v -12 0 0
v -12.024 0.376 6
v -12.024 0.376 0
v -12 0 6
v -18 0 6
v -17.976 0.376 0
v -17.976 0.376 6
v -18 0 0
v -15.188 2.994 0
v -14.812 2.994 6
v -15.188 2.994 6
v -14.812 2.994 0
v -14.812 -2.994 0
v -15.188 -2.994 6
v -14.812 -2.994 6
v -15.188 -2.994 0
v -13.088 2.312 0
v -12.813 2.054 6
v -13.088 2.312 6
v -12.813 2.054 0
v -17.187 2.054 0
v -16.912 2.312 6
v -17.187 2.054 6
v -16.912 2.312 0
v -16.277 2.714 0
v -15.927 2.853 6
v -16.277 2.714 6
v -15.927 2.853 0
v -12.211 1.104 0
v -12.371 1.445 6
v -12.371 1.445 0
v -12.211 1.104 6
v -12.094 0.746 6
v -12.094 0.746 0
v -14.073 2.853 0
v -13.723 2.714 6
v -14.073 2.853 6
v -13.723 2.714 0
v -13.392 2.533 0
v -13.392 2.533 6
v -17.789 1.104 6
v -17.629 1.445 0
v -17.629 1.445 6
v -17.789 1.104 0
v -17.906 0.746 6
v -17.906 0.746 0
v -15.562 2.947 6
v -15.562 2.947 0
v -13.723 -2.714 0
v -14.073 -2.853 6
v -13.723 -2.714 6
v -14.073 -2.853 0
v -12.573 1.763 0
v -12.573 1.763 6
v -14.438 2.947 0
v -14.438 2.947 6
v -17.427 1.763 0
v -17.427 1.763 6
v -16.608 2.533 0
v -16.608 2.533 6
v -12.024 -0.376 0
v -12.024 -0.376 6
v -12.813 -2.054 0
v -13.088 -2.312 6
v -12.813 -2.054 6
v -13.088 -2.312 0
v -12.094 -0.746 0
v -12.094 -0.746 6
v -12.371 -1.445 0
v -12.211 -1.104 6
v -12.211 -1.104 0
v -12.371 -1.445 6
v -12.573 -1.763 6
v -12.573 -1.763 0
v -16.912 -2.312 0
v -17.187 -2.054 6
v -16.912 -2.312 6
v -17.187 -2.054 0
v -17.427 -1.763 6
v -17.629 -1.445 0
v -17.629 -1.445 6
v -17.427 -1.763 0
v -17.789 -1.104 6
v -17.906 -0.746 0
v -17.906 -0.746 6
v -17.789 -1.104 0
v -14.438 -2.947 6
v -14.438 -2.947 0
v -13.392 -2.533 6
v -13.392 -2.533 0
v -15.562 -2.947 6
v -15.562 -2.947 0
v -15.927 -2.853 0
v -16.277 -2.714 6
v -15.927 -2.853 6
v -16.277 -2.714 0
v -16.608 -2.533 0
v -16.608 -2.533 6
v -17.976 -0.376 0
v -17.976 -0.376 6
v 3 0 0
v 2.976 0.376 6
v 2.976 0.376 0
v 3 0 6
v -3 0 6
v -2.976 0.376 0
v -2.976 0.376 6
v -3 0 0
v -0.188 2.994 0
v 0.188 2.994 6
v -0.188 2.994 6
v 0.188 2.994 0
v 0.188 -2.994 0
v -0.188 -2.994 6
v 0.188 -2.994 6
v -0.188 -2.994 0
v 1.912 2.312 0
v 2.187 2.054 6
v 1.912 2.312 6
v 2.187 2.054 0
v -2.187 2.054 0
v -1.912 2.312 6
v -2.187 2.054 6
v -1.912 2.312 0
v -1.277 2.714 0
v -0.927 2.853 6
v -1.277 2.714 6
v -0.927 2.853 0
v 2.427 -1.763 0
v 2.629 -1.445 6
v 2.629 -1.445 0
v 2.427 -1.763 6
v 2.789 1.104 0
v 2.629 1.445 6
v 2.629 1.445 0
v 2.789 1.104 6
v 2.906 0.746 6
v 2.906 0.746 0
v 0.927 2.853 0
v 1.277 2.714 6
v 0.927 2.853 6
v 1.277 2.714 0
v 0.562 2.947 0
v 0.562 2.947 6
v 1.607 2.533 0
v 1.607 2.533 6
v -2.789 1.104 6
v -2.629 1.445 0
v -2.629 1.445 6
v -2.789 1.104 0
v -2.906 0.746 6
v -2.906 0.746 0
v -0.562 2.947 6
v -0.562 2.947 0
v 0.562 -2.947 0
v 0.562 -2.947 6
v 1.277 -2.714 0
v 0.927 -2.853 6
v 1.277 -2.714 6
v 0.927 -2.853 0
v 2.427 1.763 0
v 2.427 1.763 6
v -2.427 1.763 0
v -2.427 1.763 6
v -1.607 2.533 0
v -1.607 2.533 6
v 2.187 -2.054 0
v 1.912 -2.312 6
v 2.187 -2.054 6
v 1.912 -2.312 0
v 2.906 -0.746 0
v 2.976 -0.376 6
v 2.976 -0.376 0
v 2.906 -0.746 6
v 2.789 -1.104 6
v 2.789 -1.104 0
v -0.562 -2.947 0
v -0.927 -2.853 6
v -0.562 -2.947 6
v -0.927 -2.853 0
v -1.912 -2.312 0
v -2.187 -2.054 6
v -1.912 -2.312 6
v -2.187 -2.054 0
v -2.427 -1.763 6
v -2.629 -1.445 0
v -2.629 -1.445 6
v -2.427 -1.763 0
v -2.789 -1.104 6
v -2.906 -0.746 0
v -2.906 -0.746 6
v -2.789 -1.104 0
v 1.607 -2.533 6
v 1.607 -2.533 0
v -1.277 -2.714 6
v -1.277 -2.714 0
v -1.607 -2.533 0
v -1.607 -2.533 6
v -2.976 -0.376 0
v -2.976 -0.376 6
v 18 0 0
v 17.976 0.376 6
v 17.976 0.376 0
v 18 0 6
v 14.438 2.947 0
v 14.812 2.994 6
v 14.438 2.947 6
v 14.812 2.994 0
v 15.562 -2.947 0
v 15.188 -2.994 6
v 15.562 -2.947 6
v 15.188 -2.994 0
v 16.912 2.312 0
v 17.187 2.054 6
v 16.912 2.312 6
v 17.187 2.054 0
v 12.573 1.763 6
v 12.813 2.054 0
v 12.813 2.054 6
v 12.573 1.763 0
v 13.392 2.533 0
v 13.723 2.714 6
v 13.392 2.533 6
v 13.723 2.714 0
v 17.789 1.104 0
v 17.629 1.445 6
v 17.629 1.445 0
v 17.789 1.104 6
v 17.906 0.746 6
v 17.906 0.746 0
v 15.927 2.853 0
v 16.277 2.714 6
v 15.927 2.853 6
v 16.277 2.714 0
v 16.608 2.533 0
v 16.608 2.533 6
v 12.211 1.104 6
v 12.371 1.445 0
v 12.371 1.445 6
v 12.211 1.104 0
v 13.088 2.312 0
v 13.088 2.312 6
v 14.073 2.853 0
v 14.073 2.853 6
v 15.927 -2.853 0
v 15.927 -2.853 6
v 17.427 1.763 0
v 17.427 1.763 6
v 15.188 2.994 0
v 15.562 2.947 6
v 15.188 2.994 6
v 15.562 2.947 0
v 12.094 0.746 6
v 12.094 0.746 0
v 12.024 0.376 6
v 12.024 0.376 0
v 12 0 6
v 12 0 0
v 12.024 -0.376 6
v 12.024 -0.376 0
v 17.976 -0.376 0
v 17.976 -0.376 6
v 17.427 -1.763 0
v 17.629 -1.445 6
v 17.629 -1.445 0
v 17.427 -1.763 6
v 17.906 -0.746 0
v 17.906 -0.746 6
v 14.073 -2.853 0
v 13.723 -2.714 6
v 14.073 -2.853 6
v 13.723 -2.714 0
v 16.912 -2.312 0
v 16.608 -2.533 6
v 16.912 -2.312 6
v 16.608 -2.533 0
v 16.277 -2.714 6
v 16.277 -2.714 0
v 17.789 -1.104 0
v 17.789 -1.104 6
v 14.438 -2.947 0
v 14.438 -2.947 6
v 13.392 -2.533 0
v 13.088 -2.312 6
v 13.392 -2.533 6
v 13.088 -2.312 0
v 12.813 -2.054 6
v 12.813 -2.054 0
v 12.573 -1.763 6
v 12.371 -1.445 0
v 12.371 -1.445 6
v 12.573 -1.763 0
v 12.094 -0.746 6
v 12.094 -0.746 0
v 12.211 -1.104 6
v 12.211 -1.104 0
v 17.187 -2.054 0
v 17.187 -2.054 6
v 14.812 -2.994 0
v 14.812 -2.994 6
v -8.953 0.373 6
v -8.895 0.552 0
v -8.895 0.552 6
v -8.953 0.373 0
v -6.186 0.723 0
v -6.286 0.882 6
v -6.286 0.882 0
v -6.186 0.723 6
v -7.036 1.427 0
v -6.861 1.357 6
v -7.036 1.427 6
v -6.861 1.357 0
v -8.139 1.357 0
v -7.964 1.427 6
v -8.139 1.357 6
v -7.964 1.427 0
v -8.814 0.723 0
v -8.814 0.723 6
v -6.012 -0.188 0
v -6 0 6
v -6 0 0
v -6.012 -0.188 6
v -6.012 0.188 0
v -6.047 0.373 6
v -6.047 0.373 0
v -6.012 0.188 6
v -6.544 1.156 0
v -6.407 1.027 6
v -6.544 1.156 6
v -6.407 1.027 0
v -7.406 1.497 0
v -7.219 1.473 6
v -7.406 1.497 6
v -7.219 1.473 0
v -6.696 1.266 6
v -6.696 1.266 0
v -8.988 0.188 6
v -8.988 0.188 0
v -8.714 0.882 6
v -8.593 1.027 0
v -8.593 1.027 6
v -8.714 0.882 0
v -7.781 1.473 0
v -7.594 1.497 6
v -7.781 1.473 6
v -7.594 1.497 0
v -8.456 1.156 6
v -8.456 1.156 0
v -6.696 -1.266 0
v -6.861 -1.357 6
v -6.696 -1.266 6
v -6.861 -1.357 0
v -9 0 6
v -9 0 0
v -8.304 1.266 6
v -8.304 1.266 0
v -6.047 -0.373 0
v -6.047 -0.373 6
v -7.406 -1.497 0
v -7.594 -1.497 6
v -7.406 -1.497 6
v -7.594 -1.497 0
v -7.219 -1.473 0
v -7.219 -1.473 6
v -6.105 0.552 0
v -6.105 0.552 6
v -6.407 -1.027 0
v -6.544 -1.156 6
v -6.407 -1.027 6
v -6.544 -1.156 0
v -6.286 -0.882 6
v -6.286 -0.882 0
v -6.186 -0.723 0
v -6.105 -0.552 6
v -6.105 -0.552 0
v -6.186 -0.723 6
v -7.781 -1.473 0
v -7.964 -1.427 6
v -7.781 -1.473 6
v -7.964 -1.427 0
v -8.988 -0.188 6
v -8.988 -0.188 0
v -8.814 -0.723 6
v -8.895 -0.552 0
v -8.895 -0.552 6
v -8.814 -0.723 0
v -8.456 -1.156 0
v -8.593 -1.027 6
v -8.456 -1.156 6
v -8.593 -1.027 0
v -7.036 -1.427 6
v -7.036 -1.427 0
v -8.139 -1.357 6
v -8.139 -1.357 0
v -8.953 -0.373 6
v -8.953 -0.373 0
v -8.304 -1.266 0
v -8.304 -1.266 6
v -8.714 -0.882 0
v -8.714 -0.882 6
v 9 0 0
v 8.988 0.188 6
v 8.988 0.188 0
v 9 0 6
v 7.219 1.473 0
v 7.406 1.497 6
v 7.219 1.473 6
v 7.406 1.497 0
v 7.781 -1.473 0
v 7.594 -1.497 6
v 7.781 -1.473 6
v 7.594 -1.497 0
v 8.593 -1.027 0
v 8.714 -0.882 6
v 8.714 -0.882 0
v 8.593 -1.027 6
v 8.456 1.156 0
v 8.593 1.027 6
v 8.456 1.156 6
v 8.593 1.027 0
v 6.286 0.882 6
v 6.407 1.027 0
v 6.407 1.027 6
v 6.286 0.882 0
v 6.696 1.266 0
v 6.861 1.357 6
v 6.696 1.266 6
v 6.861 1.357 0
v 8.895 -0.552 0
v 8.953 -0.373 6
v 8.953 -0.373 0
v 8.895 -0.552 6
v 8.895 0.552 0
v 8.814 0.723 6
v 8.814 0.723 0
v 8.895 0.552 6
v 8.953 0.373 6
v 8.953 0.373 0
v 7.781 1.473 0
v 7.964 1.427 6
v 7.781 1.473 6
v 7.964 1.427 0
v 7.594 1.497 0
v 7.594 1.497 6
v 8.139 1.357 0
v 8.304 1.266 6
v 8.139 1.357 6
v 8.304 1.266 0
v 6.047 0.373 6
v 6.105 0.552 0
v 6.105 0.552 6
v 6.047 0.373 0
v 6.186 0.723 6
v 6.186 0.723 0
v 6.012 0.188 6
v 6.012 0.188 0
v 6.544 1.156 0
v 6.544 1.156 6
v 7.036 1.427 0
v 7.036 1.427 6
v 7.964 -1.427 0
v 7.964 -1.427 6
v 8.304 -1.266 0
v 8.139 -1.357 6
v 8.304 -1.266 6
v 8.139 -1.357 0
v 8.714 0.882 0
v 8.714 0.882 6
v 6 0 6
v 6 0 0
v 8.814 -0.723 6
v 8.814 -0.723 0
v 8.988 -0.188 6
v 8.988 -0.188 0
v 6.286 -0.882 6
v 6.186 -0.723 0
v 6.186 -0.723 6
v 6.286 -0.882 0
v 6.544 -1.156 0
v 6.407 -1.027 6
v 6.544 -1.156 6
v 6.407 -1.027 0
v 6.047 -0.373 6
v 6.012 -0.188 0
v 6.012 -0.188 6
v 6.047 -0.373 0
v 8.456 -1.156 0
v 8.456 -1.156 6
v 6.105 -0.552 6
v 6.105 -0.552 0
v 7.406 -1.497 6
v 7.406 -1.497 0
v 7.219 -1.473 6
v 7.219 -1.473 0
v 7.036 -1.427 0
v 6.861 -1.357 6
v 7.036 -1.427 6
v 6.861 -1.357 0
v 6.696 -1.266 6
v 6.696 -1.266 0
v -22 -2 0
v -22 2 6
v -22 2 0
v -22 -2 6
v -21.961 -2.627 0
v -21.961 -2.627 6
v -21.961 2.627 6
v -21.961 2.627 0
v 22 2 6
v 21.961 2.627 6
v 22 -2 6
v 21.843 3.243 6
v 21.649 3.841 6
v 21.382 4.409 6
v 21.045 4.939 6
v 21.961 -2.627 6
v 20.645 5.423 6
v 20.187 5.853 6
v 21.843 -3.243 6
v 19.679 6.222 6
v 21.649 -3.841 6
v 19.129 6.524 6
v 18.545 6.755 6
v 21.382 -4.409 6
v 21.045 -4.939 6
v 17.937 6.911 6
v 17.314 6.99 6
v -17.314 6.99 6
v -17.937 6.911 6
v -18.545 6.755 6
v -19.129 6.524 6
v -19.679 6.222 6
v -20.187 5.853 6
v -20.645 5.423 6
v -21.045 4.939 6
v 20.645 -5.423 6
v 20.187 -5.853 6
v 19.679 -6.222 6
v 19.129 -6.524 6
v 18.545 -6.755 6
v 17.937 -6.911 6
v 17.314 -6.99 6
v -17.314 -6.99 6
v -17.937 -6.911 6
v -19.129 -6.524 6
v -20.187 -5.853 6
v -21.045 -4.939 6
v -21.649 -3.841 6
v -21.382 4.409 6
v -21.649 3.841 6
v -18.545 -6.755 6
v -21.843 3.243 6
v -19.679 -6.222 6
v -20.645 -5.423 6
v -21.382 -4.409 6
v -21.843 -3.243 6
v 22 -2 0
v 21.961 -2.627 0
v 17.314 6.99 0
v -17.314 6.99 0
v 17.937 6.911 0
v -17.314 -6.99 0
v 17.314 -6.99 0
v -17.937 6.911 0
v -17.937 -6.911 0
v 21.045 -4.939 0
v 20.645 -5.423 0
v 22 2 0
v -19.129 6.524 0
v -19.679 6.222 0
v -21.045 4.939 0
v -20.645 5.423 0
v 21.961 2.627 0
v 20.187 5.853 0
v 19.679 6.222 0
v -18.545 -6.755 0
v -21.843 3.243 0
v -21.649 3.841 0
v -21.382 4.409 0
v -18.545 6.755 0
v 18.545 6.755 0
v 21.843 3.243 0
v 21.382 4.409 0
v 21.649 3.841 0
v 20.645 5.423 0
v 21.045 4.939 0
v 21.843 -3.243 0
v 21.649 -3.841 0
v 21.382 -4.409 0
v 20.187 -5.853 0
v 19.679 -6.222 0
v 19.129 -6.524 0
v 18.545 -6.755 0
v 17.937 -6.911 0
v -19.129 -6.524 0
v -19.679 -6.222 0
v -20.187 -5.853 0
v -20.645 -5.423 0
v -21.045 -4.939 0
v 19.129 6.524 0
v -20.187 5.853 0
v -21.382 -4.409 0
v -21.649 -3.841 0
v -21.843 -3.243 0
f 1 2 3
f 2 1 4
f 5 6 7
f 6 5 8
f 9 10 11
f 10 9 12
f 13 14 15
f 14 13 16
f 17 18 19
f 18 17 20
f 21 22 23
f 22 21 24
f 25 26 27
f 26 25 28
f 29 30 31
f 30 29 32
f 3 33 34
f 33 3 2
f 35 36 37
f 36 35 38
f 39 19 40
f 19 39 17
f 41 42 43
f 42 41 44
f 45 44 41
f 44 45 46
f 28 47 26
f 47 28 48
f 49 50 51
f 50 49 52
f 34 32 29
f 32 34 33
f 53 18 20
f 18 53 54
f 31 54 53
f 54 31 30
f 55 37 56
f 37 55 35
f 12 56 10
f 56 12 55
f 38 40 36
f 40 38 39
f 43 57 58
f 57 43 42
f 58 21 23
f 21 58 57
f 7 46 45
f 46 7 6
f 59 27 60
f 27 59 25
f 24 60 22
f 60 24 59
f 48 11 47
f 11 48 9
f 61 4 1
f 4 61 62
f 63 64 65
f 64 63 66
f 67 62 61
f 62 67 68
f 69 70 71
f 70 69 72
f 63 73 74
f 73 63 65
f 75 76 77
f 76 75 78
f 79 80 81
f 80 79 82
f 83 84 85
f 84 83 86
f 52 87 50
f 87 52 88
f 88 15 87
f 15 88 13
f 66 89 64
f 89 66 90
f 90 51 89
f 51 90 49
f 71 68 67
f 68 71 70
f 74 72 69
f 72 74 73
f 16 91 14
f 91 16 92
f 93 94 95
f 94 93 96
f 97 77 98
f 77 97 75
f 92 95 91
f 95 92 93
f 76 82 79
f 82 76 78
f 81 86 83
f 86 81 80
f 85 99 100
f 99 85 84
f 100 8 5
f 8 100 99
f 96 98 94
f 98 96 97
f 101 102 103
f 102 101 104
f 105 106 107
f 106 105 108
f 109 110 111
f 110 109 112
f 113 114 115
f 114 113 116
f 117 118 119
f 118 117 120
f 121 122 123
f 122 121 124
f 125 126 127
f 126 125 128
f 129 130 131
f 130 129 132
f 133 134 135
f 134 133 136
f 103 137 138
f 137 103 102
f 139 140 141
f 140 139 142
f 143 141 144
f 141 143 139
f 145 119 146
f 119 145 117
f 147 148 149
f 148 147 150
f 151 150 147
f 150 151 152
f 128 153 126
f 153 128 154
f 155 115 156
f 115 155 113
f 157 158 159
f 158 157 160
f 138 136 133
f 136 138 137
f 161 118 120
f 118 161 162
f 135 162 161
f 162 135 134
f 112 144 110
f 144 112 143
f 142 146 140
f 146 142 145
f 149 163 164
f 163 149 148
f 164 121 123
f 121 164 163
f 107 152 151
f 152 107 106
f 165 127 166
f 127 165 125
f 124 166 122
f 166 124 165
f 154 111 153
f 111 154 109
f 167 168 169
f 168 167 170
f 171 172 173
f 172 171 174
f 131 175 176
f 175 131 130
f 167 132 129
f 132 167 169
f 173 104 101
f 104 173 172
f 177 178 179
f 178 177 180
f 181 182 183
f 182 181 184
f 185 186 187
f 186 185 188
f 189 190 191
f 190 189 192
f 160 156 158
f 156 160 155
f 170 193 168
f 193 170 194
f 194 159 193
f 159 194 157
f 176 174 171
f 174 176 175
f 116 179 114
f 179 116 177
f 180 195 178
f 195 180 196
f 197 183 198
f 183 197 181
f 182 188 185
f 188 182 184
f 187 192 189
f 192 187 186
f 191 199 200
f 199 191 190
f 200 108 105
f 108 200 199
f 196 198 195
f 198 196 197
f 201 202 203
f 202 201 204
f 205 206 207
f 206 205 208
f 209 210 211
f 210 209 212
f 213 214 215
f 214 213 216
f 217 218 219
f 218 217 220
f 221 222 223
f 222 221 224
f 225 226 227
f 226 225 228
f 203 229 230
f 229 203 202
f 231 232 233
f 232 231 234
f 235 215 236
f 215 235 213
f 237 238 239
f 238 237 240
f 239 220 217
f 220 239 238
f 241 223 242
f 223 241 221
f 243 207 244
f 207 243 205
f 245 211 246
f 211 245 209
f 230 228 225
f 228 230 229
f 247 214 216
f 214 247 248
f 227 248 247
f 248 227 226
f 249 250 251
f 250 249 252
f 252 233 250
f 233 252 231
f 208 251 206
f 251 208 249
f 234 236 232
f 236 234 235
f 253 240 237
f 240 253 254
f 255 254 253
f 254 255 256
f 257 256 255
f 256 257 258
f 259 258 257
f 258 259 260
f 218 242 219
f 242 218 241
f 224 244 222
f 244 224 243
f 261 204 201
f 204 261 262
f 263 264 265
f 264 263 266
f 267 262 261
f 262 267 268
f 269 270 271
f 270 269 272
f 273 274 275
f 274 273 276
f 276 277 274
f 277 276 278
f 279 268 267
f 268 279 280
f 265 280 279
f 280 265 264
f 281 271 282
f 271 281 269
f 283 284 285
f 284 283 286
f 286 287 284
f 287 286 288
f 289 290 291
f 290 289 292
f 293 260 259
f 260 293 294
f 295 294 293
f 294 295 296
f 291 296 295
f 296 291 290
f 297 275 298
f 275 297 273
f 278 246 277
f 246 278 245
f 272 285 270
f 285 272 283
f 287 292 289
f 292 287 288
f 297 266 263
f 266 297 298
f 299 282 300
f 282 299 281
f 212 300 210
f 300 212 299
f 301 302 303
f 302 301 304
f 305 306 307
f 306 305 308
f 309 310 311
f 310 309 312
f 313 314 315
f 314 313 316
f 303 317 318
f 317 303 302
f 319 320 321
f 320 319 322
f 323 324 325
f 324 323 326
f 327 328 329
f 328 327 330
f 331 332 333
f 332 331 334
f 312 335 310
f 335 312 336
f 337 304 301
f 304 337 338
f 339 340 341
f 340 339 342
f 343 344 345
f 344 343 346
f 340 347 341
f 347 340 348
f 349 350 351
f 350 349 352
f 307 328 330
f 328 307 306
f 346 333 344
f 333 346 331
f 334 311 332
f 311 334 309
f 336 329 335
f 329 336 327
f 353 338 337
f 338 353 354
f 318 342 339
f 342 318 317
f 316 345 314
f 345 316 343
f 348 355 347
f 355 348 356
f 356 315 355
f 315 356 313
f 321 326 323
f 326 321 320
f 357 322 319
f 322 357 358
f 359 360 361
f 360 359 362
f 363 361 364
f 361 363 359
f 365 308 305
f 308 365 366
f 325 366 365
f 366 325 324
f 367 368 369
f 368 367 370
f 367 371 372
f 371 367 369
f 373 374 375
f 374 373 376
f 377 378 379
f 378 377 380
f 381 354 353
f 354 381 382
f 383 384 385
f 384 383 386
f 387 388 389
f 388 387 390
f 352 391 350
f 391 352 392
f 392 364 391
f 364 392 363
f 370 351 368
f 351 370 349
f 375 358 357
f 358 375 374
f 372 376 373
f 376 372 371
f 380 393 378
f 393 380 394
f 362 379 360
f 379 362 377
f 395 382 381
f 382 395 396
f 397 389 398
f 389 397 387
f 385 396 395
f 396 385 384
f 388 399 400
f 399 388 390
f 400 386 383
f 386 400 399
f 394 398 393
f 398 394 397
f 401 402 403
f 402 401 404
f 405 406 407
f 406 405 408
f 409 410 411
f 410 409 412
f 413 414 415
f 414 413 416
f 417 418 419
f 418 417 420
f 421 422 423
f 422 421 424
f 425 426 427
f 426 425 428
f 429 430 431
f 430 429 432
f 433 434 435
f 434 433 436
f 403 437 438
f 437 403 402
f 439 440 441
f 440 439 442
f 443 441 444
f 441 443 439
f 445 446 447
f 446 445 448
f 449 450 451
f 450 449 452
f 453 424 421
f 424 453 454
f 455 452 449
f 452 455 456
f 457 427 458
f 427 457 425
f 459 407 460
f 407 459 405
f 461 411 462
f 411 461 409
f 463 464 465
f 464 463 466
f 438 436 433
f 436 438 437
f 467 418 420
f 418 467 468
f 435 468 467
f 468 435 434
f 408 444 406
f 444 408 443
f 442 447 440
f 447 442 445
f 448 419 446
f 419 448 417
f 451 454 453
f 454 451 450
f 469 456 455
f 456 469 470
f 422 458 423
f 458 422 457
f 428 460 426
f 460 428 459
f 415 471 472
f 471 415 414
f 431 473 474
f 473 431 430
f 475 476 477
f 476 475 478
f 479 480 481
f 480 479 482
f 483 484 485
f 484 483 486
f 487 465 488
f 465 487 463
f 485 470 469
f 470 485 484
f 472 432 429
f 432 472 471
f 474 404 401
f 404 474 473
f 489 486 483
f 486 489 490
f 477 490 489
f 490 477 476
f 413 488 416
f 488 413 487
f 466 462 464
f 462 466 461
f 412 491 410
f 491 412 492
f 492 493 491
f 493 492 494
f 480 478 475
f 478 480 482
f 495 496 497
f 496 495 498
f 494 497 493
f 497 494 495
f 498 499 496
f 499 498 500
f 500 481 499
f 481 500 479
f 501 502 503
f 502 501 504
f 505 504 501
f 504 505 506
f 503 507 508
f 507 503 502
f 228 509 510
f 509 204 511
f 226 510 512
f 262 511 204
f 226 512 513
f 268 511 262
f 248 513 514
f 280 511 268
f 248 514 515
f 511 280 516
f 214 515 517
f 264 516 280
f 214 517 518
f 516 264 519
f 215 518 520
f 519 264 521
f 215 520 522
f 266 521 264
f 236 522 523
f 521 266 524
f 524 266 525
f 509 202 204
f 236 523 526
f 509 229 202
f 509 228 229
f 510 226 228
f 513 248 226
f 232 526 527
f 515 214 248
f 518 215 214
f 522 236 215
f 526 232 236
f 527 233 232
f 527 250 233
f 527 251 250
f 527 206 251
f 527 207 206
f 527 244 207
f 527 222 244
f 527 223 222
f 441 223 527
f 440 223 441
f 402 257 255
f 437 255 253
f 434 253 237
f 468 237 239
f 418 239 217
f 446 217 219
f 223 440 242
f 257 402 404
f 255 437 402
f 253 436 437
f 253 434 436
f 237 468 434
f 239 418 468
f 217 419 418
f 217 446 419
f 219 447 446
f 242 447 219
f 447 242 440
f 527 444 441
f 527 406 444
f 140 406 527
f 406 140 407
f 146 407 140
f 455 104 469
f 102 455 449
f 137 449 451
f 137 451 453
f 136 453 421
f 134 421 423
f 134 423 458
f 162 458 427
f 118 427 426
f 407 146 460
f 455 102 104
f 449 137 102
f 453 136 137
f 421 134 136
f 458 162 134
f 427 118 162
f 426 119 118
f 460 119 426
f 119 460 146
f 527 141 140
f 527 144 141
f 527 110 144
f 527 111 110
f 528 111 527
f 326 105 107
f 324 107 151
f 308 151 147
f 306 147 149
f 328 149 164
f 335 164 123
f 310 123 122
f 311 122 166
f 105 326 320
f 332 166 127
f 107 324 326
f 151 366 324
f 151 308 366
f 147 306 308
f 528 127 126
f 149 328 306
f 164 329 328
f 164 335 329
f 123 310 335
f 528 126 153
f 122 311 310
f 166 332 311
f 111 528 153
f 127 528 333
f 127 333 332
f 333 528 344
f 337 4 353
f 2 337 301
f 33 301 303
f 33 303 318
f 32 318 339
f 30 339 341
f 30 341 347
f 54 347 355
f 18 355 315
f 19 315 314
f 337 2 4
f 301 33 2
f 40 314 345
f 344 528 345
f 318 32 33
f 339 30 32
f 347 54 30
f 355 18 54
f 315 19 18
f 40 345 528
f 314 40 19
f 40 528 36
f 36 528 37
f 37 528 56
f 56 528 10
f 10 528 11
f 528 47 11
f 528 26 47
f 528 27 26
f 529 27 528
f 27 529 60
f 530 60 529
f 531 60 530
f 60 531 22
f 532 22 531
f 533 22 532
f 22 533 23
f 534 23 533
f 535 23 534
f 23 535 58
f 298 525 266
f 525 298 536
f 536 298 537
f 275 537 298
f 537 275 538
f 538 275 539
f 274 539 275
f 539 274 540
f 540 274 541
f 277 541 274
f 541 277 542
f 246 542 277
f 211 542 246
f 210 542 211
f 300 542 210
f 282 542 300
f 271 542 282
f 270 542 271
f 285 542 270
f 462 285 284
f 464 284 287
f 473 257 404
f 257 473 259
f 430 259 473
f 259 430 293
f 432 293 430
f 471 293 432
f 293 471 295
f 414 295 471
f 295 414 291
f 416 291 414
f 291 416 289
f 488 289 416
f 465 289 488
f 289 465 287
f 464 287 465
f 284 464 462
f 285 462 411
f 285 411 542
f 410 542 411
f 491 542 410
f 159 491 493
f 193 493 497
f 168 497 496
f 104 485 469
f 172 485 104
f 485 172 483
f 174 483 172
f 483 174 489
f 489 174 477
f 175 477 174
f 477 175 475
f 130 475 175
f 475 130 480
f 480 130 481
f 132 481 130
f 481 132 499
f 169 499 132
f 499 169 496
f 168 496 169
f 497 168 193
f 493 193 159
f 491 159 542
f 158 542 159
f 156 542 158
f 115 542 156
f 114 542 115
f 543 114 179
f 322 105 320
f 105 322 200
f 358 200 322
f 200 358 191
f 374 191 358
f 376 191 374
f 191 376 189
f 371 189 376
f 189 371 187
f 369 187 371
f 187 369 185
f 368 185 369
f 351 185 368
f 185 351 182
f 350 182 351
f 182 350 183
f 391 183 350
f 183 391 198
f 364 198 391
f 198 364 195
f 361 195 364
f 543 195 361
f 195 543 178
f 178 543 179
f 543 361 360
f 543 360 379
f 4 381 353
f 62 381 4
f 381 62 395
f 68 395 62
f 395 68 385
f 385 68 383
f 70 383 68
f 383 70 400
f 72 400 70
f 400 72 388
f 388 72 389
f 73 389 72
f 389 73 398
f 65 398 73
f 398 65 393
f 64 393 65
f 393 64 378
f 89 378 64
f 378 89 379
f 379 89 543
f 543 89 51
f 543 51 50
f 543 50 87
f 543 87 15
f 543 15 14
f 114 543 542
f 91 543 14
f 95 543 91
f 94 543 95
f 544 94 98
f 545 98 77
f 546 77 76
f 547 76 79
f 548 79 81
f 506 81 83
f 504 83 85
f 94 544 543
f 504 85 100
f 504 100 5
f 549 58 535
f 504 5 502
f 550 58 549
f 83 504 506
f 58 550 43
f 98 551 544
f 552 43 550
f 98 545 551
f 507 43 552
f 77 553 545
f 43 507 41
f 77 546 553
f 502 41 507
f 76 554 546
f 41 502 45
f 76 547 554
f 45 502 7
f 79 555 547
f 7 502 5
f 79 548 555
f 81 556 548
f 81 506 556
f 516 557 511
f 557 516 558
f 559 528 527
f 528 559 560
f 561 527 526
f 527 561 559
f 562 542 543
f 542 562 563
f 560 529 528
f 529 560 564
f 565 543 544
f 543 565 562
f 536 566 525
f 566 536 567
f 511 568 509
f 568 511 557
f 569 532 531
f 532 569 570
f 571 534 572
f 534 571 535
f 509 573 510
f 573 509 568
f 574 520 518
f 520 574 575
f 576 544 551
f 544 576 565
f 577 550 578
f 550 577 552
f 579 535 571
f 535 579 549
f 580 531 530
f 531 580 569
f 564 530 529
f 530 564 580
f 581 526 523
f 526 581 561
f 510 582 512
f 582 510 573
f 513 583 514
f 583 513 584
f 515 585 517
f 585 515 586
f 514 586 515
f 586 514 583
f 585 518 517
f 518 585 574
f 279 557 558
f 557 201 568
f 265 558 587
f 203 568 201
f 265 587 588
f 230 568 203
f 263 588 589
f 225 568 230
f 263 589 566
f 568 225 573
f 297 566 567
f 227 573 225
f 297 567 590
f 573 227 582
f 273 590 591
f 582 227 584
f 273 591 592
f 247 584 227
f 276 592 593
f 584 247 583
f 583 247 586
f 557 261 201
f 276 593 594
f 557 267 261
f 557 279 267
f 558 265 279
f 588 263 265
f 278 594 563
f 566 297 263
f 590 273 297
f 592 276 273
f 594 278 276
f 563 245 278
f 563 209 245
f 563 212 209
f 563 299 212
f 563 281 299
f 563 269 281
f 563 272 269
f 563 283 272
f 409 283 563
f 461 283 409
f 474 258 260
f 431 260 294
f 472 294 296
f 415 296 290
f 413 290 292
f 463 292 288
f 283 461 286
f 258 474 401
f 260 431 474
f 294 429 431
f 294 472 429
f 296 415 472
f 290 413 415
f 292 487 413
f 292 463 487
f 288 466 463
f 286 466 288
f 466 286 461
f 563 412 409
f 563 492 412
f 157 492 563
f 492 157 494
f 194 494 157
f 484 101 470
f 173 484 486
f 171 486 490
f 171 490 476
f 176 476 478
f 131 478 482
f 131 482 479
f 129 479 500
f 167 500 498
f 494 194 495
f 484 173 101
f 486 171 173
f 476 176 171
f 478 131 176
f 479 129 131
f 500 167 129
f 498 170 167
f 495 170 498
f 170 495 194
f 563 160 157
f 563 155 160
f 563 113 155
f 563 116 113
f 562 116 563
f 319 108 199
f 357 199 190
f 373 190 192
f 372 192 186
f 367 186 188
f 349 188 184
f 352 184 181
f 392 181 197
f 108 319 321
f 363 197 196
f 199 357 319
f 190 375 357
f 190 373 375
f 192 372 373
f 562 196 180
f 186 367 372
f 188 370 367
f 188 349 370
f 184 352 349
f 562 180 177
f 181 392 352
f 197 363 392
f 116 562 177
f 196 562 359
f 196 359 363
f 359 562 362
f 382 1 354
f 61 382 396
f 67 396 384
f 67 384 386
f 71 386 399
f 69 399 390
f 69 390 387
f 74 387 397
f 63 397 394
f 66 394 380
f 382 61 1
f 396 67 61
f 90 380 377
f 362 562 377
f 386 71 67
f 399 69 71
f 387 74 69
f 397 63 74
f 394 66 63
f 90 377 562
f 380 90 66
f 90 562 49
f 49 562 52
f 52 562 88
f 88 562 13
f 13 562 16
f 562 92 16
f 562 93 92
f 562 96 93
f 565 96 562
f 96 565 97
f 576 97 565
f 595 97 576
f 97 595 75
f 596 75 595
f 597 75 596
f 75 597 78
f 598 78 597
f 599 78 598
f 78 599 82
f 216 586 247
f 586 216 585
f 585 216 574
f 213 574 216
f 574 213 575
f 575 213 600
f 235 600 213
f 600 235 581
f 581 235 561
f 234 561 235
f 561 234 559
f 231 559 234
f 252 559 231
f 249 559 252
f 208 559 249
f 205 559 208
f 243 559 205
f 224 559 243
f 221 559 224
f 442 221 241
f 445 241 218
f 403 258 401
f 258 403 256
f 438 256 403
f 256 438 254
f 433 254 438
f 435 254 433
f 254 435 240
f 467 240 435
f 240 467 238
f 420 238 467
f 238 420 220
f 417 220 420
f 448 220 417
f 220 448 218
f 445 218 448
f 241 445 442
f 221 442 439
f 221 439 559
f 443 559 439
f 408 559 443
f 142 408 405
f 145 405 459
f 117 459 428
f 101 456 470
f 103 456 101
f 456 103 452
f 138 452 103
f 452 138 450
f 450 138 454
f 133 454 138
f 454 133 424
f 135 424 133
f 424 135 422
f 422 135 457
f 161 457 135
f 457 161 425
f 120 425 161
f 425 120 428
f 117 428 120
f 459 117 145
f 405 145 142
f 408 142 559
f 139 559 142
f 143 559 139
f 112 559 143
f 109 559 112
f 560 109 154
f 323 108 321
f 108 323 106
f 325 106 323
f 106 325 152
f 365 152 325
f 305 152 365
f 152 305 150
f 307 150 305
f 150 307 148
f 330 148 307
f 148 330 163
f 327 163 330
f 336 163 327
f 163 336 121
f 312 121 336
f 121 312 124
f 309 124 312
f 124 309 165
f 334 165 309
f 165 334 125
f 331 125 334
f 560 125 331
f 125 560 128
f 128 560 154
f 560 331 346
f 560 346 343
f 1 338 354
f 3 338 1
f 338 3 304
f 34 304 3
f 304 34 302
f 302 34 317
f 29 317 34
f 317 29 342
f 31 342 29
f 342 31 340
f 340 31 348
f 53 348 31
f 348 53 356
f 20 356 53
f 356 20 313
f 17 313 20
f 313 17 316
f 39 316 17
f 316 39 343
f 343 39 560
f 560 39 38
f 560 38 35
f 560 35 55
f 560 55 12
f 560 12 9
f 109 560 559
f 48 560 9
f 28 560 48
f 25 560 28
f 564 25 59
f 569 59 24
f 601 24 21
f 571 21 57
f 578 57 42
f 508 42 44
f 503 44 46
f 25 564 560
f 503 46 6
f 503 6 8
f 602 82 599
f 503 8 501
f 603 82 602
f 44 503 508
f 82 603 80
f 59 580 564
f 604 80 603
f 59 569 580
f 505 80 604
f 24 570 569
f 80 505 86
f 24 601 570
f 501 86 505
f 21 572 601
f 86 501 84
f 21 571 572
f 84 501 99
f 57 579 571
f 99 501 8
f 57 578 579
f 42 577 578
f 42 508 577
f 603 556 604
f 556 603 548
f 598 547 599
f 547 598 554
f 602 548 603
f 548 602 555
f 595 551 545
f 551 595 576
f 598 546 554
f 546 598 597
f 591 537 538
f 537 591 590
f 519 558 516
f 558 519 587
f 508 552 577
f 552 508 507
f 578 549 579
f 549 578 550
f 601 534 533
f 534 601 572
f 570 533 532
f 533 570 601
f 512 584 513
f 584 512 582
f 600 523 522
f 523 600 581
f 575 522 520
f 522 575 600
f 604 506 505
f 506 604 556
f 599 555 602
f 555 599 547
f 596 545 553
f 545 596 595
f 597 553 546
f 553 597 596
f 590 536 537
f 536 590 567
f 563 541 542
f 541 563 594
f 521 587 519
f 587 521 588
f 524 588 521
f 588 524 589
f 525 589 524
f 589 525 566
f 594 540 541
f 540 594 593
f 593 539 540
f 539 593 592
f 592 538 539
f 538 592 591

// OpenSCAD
$fn = 50;


difference() {
	union() {
		translate(v = [0, 0, 0]) {
			rotate(a = [0, 0, 0]) {
				hull() {
					translate(v = [-17.0000000000, 2.0000000000, 0]) {
						rotate(a = [0, 0, 0]) {
							translate(v = [0, 0, 0]) {
								rotate(a = [0, 0, 0]) {
									cylinder(h = 6, r = 5);
								}
							}
						}
					}
					translate(v = [17.0000000000, 2.0000000000, 0]) {
						rotate(a = [0, 0, 0]) {
							translate(v = [0, 0, 0]) {
								rotate(a = [0, 0, 0]) {
									cylinder(h = 6, r = 5);
								}
							}
						}
					}
					translate(v = [-17.0000000000, -2.0000000000, 0]) {
						rotate(a = [0, 0, 0]) {
							translate(v = [0, 0, 0]) {
								rotate(a = [0, 0, 0]) {
									cylinder(h = 6, r = 5);
								}
							}
						}
					}
					translate(v = [17.0000000000, -2.0000000000, 0]) {
						rotate(a = [0, 0, 0]) {
							translate(v = [0, 0, 0]) {
								rotate(a = [0, 0, 0]) {
									cylinder(h = 6, r = 5);
								}
							}
						}
					}
				}
			}
		}
	}
	union() {
		translate(v = [-15.0000000000, 0.0000000000, 0]) {
			rotate(a = [0, 0, 0]) {
				translate(v = [0, 0, -50]) {
					rotate(a = [0, 0, 0]) {
						cylinder(h = 100, r = 3.0000000000);
					}
				}
			}
		}
		translate(v = [0.0000000000, 0.0000000000, 0]) {
			rotate(a = [0, 0, 0]) {
				translate(v = [0, 0, -50]) {
					rotate(a = [0, 0, 0]) {
						cylinder(h = 100, r = 3.0000000000);
					}
				}
			}
		}
		translate(v = [15.0000000000, 0.0000000000, 0]) {
			rotate(a = [0, 0, 0]) {
				translate(v = [0, 0, -50]) {
					rotate(a = [0, 0, 0]) {
						cylinder(h = 100, r = 3.0000000000);
					}
				}
			}
		}
		translate(v = [-15.0000000000, 0.0000000000, 0]) {
			rotate(a = [0, 0, 0]) {
				translate(v = [0, 0, -50]) {
					rotate(a = [0, 0, 0]) {
						cylinder(h = 100, r = 1.5000000000);
					}
				}
			}
		}
		translate(v = [-7.5000000000, 0.0000000000, 0]) {
			rotate(a = [0, 0, 0]) {
				translate(v = [0, 0, -50]) {
					rotate(a = [0, 0, 0]) {
						cylinder(h = 100, r = 1.5000000000);
					}
				}
			}
		}
		translate(v = [0.0000000000, 0.0000000000, 0]) {
			rotate(a = [0, 0, 0]) {
				translate(v = [0, 0, -50]) {
					rotate(a = [0, 0, 0]) {
						cylinder(h = 100, r = 1.5000000000);
					}
				}
			}
		}
		translate(v = [7.5000000000, 0.0000000000, 0]) {
			rotate(a = [0, 0, 0]) {
				translate(v = [0, 0, -50]) {
					rotate(a = [0, 0, 0]) {
						cylinder(h = 100, r = 1.5000000000);
					}
				}
			}
		}
		translate(v = [15.0000000000, 0.0000000000, 0]) {
			rotate(a = [0, 0, 0]) {
				translate(v = [0, 0, -50]) {
					rotate(a = [0, 0, 0]) {
						cylinder(h = 100, r = 1.5000000000);
					}
				}
			}
		}
	}
}
